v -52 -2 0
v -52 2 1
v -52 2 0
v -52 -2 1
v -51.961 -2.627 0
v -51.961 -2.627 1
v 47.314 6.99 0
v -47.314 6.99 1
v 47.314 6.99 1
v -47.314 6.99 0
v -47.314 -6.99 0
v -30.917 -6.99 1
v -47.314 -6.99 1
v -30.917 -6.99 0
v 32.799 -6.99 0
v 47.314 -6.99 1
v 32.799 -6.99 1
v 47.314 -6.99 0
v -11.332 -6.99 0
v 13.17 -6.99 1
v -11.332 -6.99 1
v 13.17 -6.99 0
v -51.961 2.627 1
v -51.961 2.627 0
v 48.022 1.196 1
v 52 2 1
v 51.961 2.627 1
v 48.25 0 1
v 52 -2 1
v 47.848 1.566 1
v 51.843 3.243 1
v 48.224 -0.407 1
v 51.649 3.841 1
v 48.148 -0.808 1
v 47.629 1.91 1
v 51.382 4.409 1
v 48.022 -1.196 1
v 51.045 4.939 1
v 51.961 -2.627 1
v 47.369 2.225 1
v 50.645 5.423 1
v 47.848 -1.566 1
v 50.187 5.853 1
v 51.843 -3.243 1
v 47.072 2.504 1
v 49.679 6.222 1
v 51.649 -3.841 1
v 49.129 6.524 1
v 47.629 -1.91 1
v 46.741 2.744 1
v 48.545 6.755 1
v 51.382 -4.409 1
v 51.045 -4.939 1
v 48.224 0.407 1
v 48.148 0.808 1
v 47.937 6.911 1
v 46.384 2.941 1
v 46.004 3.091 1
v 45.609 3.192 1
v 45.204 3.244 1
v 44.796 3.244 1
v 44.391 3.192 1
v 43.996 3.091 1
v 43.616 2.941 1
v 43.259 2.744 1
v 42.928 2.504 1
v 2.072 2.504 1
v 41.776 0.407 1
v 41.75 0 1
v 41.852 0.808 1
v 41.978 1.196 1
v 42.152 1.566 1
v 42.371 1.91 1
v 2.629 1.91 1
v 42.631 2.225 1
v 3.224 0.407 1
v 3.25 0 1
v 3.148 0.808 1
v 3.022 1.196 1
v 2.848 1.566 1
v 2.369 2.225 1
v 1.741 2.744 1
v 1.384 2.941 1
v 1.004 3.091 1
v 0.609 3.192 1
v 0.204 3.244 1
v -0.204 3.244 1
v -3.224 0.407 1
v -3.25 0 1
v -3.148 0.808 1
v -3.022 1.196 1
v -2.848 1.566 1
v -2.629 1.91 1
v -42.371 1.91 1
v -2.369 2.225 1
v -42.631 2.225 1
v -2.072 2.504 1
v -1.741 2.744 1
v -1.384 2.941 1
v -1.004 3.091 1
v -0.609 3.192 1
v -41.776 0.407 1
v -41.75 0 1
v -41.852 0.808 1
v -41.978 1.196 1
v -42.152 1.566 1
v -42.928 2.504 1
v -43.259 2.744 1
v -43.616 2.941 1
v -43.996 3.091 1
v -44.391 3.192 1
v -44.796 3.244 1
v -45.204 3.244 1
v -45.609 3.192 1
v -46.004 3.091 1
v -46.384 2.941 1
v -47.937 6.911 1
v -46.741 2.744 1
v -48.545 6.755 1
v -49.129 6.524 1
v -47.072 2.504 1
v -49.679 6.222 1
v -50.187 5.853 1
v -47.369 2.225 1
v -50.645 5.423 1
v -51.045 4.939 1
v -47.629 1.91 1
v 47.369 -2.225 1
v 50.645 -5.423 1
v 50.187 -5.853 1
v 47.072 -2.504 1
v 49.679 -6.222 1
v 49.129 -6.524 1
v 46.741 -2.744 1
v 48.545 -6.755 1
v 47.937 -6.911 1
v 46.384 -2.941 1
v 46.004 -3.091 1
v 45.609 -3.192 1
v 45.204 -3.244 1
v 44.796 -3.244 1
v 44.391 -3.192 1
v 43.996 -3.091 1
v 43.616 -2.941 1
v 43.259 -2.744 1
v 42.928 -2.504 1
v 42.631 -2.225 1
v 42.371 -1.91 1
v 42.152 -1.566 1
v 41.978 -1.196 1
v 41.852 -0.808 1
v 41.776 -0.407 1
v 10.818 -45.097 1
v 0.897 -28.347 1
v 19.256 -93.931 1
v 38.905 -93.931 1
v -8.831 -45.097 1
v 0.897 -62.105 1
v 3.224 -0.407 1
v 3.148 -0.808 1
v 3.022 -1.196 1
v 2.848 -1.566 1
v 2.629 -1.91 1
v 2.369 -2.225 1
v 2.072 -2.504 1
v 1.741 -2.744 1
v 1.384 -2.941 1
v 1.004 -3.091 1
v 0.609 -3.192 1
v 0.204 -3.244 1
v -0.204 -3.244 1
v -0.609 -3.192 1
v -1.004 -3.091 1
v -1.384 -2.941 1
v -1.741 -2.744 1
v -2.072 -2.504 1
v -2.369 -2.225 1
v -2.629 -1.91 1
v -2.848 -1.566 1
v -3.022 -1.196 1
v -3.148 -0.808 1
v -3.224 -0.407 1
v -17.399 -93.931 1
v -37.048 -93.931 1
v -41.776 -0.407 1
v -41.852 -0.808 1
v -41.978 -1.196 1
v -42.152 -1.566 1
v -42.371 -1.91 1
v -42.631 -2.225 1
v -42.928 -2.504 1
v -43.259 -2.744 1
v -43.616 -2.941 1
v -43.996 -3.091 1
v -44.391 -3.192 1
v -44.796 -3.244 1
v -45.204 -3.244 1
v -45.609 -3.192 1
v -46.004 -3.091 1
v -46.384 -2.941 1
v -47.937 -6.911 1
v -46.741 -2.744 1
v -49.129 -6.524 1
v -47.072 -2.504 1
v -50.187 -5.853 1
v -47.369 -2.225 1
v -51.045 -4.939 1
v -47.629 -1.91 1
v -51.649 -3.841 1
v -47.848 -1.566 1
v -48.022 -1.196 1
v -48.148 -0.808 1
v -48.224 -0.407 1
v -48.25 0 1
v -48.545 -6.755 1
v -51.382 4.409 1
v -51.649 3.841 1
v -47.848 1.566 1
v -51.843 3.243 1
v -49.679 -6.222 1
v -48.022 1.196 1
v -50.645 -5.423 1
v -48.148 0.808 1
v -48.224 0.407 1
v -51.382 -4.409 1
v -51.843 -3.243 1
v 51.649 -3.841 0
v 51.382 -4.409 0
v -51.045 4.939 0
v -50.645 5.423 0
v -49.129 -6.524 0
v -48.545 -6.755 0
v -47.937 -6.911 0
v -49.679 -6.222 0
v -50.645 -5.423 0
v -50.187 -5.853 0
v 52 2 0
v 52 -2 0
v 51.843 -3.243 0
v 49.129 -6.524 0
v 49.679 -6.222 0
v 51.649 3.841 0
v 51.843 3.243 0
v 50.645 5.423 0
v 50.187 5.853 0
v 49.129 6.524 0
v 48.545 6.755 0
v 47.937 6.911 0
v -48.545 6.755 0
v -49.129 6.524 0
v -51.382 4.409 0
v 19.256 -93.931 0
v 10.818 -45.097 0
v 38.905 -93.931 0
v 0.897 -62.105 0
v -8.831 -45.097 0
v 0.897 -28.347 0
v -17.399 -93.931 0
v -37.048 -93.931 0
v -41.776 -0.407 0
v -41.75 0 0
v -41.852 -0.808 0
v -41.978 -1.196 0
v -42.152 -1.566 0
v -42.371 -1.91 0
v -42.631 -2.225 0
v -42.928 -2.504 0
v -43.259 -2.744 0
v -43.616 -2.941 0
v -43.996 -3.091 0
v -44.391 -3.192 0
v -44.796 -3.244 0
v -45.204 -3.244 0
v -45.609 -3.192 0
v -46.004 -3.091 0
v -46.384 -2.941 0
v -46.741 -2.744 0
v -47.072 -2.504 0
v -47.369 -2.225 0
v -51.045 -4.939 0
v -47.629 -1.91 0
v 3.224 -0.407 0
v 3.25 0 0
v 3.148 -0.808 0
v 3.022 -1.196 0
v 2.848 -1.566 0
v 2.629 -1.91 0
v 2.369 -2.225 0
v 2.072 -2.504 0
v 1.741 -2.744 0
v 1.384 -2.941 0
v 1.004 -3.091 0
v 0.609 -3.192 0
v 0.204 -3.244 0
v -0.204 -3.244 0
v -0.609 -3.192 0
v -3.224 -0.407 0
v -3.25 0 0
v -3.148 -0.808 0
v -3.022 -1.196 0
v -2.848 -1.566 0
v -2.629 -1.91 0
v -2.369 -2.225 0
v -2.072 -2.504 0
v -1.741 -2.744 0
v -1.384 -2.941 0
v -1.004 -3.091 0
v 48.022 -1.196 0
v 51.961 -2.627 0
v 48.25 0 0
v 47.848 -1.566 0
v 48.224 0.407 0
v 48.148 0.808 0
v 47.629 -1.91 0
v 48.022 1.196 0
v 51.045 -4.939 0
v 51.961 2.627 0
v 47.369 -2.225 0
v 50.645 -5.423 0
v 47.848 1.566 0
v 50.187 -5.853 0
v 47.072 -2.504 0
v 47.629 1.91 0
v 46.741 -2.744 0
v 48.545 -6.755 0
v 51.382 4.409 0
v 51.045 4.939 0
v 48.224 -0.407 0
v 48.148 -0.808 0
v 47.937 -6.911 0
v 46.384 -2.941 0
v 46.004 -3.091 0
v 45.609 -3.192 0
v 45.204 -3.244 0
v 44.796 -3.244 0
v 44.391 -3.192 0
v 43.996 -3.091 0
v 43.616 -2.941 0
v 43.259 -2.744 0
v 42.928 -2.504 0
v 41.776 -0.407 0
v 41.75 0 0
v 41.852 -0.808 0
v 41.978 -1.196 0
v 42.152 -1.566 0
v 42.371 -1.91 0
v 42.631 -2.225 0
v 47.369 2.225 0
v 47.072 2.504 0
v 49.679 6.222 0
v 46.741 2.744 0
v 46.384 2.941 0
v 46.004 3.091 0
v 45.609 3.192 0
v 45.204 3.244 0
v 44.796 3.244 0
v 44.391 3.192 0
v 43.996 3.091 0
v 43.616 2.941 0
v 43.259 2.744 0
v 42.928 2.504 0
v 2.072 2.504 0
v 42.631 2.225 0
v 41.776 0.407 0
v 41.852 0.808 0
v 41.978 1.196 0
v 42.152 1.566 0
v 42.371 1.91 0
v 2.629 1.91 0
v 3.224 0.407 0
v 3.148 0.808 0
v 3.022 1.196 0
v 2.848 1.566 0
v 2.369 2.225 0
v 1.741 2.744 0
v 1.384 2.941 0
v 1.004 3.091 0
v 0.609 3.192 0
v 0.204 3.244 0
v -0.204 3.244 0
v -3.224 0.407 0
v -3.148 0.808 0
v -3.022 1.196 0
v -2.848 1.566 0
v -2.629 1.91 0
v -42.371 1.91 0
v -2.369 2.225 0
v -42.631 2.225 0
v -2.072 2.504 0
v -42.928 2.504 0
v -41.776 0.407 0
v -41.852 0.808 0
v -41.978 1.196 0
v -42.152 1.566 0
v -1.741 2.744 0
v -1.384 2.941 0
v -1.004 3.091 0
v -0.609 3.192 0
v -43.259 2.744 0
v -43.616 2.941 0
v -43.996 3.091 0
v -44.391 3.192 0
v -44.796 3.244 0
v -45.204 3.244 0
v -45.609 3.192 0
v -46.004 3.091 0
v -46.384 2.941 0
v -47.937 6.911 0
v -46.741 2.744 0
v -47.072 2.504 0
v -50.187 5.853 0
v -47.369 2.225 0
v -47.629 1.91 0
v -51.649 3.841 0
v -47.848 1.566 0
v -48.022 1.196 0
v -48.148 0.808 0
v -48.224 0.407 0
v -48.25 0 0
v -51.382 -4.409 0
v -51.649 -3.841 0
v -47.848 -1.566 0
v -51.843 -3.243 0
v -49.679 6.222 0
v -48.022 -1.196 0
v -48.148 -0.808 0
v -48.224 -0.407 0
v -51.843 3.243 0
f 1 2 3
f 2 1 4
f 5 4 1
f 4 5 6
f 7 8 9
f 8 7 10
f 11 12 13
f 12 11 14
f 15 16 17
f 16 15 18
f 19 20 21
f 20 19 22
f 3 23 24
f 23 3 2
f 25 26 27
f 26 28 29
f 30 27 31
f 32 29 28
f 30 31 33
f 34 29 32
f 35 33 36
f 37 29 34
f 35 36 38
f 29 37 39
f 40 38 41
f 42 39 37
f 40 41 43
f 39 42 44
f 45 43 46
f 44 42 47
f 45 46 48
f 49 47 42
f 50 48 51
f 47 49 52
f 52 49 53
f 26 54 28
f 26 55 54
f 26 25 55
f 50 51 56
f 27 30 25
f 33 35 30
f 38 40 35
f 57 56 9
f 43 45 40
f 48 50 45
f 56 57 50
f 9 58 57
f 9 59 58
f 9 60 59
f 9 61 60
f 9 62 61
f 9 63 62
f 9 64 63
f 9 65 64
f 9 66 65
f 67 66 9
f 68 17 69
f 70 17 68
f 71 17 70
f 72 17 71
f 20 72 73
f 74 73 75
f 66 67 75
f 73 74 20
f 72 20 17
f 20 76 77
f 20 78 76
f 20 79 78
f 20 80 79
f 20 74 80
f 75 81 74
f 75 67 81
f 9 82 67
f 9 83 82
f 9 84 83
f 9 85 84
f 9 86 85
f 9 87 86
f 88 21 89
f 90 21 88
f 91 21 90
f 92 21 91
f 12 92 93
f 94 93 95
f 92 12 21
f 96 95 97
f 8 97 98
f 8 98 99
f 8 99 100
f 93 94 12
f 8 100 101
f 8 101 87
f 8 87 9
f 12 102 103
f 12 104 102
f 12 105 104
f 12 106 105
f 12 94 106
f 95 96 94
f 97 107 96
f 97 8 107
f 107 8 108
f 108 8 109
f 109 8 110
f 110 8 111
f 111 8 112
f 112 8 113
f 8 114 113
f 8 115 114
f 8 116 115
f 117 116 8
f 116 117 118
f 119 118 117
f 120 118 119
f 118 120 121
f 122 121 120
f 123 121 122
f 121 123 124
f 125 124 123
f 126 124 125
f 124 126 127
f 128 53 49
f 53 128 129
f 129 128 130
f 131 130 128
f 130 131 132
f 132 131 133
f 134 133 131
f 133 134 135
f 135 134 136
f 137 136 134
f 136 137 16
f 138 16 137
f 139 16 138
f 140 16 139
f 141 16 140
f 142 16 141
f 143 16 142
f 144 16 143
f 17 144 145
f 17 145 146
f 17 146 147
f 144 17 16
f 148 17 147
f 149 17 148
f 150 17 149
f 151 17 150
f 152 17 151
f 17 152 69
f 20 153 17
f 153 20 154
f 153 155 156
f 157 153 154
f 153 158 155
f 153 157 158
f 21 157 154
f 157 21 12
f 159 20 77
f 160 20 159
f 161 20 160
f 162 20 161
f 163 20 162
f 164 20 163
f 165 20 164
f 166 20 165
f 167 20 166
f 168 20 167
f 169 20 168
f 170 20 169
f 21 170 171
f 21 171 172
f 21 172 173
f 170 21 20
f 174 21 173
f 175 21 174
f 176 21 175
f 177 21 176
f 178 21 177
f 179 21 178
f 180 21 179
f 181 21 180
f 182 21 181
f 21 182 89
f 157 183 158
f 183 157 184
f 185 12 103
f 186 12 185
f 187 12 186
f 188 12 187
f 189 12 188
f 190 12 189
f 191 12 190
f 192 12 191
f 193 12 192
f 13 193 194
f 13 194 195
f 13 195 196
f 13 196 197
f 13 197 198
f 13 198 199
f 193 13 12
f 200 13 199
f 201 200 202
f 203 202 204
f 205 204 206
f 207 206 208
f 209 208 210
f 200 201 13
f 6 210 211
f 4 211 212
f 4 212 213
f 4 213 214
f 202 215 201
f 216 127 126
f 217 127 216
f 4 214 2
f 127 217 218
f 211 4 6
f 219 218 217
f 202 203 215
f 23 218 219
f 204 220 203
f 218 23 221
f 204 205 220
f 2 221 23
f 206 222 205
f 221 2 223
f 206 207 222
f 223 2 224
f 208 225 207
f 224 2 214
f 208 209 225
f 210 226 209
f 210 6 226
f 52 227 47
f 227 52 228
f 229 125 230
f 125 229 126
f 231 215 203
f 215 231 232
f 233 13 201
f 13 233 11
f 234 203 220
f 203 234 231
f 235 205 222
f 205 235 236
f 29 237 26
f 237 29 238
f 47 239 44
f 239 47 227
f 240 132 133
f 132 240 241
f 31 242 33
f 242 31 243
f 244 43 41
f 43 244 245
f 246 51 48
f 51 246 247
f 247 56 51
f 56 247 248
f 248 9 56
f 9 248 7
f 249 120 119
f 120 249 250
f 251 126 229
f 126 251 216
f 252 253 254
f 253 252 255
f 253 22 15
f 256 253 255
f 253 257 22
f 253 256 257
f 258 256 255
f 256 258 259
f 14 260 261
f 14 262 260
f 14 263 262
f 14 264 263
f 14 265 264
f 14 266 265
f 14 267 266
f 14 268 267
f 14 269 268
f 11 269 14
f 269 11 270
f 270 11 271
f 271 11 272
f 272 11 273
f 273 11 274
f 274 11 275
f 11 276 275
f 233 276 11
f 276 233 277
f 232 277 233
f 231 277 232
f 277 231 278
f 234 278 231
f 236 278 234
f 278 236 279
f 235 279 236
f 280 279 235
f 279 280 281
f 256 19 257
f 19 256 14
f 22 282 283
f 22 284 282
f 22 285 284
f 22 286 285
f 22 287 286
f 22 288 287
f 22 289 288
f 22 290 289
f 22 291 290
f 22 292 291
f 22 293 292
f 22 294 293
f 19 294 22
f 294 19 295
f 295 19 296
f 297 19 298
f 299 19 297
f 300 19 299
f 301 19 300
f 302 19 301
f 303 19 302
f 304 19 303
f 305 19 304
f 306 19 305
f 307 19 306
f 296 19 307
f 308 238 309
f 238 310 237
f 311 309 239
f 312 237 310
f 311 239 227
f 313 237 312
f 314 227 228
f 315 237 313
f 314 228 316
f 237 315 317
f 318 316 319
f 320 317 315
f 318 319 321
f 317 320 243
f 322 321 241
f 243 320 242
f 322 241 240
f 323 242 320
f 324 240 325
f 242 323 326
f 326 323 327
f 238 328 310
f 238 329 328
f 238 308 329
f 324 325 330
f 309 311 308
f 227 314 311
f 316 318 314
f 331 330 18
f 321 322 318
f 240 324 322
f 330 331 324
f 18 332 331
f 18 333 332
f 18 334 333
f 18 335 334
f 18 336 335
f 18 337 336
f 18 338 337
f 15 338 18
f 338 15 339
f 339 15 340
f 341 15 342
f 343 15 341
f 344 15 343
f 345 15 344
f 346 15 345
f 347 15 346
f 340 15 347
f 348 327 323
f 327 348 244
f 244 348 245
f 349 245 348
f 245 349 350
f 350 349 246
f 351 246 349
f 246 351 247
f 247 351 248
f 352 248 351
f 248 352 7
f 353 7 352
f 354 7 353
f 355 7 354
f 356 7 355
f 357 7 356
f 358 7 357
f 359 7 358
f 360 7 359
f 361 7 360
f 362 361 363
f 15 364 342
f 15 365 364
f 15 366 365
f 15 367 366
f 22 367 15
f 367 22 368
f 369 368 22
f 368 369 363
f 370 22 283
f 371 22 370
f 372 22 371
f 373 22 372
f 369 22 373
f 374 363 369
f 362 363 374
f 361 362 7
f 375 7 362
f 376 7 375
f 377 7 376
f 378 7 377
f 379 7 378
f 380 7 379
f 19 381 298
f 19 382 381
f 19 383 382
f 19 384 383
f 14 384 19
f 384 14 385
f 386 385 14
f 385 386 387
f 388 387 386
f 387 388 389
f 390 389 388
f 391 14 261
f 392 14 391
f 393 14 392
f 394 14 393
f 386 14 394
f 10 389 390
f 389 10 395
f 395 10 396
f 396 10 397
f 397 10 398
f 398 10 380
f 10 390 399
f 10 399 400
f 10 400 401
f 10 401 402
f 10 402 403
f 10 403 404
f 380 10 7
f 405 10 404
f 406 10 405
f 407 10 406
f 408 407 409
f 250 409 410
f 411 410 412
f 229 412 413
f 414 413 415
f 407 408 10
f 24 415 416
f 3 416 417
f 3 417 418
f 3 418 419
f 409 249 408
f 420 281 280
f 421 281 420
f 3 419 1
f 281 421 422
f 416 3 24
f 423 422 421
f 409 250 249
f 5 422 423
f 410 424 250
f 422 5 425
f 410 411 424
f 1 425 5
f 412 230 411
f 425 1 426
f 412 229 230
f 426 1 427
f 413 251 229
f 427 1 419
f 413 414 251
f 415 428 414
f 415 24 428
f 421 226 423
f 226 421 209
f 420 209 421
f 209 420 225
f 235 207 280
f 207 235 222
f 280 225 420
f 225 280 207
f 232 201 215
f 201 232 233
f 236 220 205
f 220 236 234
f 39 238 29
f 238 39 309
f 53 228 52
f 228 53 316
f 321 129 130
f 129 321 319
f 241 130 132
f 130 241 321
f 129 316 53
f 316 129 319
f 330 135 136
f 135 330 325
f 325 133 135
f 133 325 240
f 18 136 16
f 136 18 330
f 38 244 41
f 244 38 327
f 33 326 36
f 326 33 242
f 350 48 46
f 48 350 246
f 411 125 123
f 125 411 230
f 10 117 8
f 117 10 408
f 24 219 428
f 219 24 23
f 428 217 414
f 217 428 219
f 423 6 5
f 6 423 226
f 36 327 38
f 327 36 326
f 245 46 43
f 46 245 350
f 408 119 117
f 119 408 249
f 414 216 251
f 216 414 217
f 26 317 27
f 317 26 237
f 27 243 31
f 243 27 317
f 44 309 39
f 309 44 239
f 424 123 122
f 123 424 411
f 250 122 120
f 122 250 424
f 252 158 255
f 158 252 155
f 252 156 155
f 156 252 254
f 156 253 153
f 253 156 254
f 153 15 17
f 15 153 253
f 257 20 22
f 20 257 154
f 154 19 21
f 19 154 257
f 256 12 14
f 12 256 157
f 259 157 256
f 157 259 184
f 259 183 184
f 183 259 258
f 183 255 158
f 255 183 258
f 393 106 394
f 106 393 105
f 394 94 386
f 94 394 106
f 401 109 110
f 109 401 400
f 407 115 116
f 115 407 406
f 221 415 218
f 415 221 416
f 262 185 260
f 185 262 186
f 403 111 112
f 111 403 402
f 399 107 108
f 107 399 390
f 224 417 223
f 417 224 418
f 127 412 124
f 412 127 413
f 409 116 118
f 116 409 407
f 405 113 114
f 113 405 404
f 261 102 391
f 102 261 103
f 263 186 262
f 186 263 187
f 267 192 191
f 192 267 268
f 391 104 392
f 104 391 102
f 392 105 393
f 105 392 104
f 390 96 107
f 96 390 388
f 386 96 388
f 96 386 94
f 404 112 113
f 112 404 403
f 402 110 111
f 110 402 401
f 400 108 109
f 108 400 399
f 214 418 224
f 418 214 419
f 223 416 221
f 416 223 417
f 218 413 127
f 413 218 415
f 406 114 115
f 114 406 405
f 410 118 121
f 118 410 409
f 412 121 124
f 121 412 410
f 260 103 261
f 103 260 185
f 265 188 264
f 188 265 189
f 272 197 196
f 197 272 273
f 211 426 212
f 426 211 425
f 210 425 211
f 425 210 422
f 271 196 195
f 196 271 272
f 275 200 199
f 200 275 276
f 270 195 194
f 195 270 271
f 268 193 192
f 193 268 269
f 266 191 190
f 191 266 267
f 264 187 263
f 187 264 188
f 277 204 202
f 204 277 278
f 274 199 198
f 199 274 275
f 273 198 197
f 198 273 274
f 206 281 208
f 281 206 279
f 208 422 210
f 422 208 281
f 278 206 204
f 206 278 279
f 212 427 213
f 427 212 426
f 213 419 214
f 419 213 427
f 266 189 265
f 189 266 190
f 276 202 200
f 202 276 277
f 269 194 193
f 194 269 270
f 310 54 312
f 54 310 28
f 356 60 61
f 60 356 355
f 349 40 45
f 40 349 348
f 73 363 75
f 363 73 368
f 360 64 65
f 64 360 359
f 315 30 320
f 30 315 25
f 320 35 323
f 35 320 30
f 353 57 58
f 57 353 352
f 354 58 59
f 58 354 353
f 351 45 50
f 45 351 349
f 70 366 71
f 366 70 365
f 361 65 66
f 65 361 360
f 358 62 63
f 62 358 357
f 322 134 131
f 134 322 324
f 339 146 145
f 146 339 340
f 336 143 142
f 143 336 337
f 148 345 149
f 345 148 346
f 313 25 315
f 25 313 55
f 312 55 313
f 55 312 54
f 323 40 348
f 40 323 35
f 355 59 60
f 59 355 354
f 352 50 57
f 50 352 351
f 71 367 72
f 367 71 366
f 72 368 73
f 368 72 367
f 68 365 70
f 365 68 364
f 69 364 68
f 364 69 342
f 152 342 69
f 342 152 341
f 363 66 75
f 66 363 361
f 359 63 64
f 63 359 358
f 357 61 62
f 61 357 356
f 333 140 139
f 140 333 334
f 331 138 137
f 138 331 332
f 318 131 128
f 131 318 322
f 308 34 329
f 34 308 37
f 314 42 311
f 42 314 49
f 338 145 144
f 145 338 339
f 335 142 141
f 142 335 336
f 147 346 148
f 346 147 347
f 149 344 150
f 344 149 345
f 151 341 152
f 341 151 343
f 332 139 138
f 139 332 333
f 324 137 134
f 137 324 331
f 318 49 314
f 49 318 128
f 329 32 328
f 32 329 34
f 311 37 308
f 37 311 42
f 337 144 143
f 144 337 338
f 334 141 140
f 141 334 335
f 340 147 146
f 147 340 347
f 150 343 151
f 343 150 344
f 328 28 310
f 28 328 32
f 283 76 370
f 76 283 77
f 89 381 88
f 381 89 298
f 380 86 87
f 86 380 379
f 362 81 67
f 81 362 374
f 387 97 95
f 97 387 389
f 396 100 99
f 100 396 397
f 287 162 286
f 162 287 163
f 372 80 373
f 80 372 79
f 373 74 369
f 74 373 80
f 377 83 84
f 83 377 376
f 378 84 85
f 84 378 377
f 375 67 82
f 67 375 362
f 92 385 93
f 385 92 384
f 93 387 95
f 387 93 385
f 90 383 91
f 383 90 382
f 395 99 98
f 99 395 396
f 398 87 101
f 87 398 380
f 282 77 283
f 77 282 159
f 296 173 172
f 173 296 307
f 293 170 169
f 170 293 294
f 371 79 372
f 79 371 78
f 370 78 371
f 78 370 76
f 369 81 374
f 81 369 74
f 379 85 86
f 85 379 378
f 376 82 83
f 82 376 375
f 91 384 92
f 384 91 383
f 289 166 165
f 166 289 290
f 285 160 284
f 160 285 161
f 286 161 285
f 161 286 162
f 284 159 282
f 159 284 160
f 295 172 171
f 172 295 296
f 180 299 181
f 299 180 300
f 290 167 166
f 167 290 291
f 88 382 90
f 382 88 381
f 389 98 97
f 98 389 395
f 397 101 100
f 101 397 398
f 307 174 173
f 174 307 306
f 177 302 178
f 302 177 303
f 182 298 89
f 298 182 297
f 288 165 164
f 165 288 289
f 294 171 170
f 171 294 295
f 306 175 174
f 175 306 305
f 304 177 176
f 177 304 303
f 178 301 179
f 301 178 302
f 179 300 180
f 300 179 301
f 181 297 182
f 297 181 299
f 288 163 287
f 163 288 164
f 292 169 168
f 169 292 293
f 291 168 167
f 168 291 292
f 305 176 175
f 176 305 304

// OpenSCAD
$fn = 50;


difference() {
	union() {
		translate(v = [0, 0, 0]) {
			rotate(a = [0, 0, 0]) {
				hull() {
					translate(v = [-47.0000000000, 2.0000000000, 0]) {
						rotate(a = [0, 0, 0]) {
							translate(v = [0, 0, 0]) {
								rotate(a = [0, 0, 0]) {
									cylinder(h = 1, r = 5);
								}
							}
						}
					}
					translate(v = [47.0000000000, 2.0000000000, 0]) {
						rotate(a = [0, 0, 0]) {
							translate(v = [0, 0, 0]) {
								rotate(a = [0, 0, 0]) {
									cylinder(h = 1, r = 5);
								}
							}
						}
					}
					translate(v = [-47.0000000000, -2.0000000000, 0]) {
						rotate(a = [0, 0, 0]) {
							translate(v = [0, 0, 0]) {
								rotate(a = [0, 0, 0]) {
									cylinder(h = 1, r = 5);
								}
							}
						}
					}
					translate(v = [47.0000000000, -2.0000000000, 0]) {
						rotate(a = [0, 0, 0]) {
							translate(v = [0, 0, 0]) {
								rotate(a = [0, 0, 0]) {
									cylinder(h = 1, r = 5);
								}
							}
						}
					}
				}
			}
		}
		translate(v = [0, 0, 0]) {
			rotate(a = [0, 0, 0]) {
				linear_extrude(height = 1) {
					text(font = "DejaVu Sans Mono:style=Bold", halign = "center", size = 95.0000000000, text = "X", valign = "top");
				}
			}
		}
	}
	union() {
		translate(v = [-45.0000000000, 0.0000000000, -125.0000000000]) {
			rotate(a = [0, 0, 0]) {
				cylinder(h = 250, r = 3.2500000000);
			}
		}
		translate(v = [45.0000000000, 0.0000000000, -125.0000000000]) {
			rotate(a = [0, 0, 0]) {
				cylinder(h = 250, r = 3.2500000000);
			}
		}
		translate(v = [45.0000000000, 0.0000000000, -125.0000000000]) {
			rotate(a = [0, 0, 0]) {
				cylinder(h = 250, r = 3.2500000000);
			}
		}
		translate(v = [0, 0, -125.0000000000]) {
			rotate(a = [0, 0, 0]) {
				cylinder(h = 250, r = 3.2500000000);
			}
		}
	}
}
